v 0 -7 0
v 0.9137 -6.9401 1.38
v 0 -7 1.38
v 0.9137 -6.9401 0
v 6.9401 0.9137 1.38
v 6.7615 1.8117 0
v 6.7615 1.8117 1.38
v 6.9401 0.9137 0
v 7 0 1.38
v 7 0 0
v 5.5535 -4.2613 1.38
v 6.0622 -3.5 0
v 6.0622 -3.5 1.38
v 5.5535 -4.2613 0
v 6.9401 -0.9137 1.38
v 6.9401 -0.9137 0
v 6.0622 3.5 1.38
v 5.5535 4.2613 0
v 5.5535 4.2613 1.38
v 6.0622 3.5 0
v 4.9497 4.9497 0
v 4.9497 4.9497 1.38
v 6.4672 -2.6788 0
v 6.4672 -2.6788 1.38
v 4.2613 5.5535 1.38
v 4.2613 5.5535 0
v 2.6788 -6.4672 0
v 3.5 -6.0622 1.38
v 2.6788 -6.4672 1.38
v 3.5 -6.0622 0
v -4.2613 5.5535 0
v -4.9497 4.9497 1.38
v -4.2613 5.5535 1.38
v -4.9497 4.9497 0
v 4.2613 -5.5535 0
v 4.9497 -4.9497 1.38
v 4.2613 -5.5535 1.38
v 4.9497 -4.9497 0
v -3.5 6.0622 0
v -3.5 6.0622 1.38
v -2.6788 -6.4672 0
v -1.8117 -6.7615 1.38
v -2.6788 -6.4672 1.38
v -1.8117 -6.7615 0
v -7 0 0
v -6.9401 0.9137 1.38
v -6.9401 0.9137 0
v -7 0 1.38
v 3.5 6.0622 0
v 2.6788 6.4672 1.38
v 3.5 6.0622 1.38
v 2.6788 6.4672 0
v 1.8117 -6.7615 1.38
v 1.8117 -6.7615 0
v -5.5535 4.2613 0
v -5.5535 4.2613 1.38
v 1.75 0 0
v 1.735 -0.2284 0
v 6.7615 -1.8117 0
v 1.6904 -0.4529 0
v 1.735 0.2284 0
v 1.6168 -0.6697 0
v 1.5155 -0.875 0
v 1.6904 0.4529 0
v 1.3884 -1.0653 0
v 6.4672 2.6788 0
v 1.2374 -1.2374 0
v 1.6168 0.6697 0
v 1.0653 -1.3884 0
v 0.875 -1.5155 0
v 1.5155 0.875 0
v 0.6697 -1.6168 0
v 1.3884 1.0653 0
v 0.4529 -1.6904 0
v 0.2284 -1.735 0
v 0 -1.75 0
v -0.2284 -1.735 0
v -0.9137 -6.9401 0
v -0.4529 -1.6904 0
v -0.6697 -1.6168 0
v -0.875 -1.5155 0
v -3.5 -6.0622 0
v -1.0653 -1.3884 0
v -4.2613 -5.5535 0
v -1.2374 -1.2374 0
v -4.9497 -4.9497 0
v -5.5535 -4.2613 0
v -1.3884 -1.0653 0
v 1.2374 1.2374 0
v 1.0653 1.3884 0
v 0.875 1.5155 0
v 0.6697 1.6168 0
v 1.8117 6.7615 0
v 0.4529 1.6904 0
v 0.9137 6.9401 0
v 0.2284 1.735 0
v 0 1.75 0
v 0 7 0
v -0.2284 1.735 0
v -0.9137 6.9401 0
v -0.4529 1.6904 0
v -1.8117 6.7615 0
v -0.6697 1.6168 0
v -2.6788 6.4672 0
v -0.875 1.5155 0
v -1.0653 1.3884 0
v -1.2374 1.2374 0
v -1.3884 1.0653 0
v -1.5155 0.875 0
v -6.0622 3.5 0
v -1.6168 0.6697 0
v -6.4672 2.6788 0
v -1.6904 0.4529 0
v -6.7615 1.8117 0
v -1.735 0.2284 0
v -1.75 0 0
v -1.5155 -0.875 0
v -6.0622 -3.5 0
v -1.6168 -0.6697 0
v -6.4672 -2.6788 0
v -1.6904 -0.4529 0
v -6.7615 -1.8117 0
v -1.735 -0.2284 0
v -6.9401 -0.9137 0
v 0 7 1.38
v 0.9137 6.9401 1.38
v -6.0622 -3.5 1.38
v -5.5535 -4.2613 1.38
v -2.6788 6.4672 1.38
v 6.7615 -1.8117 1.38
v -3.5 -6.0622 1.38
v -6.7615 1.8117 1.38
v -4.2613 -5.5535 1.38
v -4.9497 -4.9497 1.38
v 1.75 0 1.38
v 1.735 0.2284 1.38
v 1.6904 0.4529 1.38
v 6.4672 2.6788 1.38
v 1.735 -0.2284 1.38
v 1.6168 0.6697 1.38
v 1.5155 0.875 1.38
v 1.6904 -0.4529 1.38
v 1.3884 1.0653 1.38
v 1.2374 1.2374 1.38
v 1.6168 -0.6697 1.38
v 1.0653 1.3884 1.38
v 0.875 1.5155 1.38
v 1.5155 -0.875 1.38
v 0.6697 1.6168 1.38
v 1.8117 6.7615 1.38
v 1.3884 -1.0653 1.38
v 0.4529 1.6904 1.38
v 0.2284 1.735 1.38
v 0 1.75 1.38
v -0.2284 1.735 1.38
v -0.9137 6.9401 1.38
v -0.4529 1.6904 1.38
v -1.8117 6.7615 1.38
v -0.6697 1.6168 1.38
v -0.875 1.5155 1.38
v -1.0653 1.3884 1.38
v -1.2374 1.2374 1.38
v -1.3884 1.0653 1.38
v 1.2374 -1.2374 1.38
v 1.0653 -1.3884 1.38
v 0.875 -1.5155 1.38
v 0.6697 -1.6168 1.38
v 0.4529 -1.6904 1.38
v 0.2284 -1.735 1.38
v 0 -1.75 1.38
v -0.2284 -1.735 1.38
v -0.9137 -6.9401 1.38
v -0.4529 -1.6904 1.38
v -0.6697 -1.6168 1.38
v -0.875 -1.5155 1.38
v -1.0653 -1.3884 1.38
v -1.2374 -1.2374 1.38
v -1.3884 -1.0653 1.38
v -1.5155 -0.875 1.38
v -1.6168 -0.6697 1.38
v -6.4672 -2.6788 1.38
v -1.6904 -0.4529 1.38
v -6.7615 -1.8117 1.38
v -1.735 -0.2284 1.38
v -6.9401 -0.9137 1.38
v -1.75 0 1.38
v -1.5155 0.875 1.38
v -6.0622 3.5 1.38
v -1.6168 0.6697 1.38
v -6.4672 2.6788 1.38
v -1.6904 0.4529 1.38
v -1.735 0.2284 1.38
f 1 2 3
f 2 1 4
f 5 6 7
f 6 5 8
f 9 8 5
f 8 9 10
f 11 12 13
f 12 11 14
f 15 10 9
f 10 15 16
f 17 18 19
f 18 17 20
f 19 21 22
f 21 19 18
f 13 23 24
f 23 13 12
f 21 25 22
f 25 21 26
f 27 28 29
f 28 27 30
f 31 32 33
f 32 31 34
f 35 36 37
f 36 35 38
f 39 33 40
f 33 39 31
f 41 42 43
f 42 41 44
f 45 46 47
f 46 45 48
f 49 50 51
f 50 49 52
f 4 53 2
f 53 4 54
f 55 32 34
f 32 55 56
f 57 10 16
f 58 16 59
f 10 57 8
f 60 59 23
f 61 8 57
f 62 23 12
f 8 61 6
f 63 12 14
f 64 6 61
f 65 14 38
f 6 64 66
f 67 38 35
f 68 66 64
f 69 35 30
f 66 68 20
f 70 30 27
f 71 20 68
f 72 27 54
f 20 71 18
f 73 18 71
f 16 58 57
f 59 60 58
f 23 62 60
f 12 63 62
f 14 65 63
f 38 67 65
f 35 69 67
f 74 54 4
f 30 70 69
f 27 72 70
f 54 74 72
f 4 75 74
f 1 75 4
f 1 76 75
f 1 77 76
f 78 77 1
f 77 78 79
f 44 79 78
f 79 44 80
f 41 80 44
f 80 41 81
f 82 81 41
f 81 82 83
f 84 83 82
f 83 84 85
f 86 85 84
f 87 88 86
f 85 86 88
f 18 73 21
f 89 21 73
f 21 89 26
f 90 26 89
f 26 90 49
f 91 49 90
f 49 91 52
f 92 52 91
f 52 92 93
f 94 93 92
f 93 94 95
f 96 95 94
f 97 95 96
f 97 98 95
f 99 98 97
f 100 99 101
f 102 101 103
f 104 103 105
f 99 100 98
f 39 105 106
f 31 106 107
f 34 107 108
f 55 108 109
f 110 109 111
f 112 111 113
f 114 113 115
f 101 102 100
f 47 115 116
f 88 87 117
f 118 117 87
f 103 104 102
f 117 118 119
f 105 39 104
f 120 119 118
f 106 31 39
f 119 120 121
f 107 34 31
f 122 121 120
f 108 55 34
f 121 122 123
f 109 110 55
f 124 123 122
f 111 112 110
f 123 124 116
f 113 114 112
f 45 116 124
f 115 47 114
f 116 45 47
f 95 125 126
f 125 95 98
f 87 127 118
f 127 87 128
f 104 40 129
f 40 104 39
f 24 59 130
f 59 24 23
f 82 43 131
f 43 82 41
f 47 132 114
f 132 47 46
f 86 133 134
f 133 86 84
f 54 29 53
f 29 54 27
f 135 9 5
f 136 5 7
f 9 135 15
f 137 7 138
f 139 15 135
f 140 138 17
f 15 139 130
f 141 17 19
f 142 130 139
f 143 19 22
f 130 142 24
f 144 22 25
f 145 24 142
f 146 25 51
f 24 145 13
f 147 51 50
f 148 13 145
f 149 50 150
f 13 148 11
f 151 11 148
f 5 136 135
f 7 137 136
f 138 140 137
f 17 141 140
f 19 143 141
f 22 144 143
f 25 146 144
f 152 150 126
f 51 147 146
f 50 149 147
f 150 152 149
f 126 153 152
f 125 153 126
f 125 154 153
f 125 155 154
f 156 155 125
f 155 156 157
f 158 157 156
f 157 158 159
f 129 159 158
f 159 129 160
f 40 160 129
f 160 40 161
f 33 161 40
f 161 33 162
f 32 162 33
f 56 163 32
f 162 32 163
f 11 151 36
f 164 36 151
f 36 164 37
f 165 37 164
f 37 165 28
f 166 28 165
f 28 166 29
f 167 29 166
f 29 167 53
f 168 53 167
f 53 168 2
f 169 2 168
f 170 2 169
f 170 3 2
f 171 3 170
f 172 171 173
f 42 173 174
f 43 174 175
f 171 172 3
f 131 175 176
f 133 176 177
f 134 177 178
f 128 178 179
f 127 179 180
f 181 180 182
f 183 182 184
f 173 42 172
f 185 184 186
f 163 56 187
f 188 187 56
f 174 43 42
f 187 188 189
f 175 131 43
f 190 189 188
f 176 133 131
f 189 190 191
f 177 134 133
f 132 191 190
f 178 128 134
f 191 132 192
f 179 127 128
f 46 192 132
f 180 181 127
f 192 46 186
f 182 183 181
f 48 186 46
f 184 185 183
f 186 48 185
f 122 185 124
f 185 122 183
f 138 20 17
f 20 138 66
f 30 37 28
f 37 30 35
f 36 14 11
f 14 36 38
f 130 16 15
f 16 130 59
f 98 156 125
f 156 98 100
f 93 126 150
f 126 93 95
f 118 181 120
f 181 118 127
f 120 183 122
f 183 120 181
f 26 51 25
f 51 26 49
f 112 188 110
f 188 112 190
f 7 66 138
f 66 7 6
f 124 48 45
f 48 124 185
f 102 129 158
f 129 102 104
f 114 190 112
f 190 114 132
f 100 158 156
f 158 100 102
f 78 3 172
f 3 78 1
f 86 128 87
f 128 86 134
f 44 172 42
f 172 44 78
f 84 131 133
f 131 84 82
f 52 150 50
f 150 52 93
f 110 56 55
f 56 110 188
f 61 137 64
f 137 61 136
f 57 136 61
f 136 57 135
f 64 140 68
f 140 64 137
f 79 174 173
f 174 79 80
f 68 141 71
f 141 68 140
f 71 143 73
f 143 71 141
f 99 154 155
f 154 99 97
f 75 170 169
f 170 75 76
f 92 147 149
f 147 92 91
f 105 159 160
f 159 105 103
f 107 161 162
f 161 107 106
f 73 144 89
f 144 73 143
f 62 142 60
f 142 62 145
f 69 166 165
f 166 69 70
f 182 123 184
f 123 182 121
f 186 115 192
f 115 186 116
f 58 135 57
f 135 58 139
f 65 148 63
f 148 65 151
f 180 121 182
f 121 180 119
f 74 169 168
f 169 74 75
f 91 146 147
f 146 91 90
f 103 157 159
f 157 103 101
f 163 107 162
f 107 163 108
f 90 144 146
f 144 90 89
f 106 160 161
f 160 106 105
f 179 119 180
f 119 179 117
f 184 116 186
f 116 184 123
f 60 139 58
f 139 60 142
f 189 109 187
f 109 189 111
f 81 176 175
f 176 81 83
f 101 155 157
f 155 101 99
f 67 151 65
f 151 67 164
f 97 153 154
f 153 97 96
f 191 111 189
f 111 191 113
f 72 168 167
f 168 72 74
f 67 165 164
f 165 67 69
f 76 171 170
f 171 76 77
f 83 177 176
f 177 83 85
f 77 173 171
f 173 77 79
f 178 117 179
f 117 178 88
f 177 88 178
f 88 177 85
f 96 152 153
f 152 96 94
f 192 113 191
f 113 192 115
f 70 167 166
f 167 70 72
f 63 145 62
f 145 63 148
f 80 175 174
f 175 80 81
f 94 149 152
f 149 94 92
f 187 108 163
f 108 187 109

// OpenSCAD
// file: parameters.scad
// =============================================================================
// Gen-X Vernier flux-claw dual-gap AFPM — WOUND-AWARE (HARD GATE)
// Dual-rotor + vernier 8+8 Ø20 + Ø5 flux claws; evolution of Gen-U
// =============================================================================

wire_awg            = 26;
wire_od             = 0.45;
turns               = 135;
fill                = 0.70;
layers_per_face     = 2;
wind_build_axial    = layers_per_face * wire_od * fill;   // 0.63
wind_build_radial   = 3 * wire_od * fill;                 // 0.945

coil_id_r           = 22.0;
coil_od_r           = 57.0;
span_deg            = 25.0;     // 12 stations; vernier vs 16-pole equiv
former_web          = 2.4;
flange_t            = 0.80;
wall                = 1.2;
slot_w              = 2.4;
mount_hole          = 3.5;
tab_len             = 7.0;

former_bare_h       = former_web + 2 * flange_t;            // 4.0
coil_envelope_h     = former_bare_h + 2 * wind_build_axial; // 5.26

run_clear           = 0.75;
gap_spacer_h        = run_clear + wind_build_axial;         // 1.38
m2m                 = coil_envelope_h + 2 * run_clear;      // 6.76 (≤6.8)

coil_stations       = 12;
bay_r_in            = coil_id_r - 2.0 - wind_build_radial;
bay_r_out           = coil_od_r + 2.0 + wind_build_radial;
bay_span            = span_deg + 4.0;
bay_offset          = 2.0;
stator_thick        = former_bare_h;
stator_od           = 156.0;
shaft_clear_stator  = 36.0;
coil_mount_r        = 28.0;

// Dual rotors: 8+8 Ø20 vernier poles + 24+24 Ø5 flux claws / edge assists
large_pocket_d      = 20.3;
small_pocket_d      = 5.3;
pocket_h            = 5.2;
large_n             = 8;
R_large             = 50.0;
R_claw_inner        = 36.0;
R_claw_mid          = 50.0;
R_claw_outer        = 64.0;
carrier_od          = 152.0;
carrier_thick       = 7.5;
hub_h               = 10.0;
hub_od              = 30.0;
rotor_b_offset_deg  = 22.5;

shaft_bore          = 8.35;
bearing_d           = 21.85;
bearing_h           = 7.2;
m3_clear            = 3.5;
bolt_r_inner        = 36.0;
bolt_n_inner        = 6;
flange_bolt_r       = 72.0;
flange_bolt_n       = 6;
brace_r             = 68.0;
brace_d             = 4.3;
brace_n             = 4;

spacer_pad_od       = 14.0;
spacer_pad_id       = m3_clear;
endbell_od          = 156.0;
endbell_thick       = 8.0;
endbell_shaft_clear = 10.0;

$fn = 64;
// main file
// Gen-X gap spacer — h = run_clear + wind_build_axial; print ×12
include <parameters.scad>;
$fn = 48;
difference() {
    cylinder(d=spacer_pad_od, h=gap_spacer_h);
    translate([0, 0, -0.1]) cylinder(d=spacer_pad_id, h=gap_spacer_h + 0.2);
}
